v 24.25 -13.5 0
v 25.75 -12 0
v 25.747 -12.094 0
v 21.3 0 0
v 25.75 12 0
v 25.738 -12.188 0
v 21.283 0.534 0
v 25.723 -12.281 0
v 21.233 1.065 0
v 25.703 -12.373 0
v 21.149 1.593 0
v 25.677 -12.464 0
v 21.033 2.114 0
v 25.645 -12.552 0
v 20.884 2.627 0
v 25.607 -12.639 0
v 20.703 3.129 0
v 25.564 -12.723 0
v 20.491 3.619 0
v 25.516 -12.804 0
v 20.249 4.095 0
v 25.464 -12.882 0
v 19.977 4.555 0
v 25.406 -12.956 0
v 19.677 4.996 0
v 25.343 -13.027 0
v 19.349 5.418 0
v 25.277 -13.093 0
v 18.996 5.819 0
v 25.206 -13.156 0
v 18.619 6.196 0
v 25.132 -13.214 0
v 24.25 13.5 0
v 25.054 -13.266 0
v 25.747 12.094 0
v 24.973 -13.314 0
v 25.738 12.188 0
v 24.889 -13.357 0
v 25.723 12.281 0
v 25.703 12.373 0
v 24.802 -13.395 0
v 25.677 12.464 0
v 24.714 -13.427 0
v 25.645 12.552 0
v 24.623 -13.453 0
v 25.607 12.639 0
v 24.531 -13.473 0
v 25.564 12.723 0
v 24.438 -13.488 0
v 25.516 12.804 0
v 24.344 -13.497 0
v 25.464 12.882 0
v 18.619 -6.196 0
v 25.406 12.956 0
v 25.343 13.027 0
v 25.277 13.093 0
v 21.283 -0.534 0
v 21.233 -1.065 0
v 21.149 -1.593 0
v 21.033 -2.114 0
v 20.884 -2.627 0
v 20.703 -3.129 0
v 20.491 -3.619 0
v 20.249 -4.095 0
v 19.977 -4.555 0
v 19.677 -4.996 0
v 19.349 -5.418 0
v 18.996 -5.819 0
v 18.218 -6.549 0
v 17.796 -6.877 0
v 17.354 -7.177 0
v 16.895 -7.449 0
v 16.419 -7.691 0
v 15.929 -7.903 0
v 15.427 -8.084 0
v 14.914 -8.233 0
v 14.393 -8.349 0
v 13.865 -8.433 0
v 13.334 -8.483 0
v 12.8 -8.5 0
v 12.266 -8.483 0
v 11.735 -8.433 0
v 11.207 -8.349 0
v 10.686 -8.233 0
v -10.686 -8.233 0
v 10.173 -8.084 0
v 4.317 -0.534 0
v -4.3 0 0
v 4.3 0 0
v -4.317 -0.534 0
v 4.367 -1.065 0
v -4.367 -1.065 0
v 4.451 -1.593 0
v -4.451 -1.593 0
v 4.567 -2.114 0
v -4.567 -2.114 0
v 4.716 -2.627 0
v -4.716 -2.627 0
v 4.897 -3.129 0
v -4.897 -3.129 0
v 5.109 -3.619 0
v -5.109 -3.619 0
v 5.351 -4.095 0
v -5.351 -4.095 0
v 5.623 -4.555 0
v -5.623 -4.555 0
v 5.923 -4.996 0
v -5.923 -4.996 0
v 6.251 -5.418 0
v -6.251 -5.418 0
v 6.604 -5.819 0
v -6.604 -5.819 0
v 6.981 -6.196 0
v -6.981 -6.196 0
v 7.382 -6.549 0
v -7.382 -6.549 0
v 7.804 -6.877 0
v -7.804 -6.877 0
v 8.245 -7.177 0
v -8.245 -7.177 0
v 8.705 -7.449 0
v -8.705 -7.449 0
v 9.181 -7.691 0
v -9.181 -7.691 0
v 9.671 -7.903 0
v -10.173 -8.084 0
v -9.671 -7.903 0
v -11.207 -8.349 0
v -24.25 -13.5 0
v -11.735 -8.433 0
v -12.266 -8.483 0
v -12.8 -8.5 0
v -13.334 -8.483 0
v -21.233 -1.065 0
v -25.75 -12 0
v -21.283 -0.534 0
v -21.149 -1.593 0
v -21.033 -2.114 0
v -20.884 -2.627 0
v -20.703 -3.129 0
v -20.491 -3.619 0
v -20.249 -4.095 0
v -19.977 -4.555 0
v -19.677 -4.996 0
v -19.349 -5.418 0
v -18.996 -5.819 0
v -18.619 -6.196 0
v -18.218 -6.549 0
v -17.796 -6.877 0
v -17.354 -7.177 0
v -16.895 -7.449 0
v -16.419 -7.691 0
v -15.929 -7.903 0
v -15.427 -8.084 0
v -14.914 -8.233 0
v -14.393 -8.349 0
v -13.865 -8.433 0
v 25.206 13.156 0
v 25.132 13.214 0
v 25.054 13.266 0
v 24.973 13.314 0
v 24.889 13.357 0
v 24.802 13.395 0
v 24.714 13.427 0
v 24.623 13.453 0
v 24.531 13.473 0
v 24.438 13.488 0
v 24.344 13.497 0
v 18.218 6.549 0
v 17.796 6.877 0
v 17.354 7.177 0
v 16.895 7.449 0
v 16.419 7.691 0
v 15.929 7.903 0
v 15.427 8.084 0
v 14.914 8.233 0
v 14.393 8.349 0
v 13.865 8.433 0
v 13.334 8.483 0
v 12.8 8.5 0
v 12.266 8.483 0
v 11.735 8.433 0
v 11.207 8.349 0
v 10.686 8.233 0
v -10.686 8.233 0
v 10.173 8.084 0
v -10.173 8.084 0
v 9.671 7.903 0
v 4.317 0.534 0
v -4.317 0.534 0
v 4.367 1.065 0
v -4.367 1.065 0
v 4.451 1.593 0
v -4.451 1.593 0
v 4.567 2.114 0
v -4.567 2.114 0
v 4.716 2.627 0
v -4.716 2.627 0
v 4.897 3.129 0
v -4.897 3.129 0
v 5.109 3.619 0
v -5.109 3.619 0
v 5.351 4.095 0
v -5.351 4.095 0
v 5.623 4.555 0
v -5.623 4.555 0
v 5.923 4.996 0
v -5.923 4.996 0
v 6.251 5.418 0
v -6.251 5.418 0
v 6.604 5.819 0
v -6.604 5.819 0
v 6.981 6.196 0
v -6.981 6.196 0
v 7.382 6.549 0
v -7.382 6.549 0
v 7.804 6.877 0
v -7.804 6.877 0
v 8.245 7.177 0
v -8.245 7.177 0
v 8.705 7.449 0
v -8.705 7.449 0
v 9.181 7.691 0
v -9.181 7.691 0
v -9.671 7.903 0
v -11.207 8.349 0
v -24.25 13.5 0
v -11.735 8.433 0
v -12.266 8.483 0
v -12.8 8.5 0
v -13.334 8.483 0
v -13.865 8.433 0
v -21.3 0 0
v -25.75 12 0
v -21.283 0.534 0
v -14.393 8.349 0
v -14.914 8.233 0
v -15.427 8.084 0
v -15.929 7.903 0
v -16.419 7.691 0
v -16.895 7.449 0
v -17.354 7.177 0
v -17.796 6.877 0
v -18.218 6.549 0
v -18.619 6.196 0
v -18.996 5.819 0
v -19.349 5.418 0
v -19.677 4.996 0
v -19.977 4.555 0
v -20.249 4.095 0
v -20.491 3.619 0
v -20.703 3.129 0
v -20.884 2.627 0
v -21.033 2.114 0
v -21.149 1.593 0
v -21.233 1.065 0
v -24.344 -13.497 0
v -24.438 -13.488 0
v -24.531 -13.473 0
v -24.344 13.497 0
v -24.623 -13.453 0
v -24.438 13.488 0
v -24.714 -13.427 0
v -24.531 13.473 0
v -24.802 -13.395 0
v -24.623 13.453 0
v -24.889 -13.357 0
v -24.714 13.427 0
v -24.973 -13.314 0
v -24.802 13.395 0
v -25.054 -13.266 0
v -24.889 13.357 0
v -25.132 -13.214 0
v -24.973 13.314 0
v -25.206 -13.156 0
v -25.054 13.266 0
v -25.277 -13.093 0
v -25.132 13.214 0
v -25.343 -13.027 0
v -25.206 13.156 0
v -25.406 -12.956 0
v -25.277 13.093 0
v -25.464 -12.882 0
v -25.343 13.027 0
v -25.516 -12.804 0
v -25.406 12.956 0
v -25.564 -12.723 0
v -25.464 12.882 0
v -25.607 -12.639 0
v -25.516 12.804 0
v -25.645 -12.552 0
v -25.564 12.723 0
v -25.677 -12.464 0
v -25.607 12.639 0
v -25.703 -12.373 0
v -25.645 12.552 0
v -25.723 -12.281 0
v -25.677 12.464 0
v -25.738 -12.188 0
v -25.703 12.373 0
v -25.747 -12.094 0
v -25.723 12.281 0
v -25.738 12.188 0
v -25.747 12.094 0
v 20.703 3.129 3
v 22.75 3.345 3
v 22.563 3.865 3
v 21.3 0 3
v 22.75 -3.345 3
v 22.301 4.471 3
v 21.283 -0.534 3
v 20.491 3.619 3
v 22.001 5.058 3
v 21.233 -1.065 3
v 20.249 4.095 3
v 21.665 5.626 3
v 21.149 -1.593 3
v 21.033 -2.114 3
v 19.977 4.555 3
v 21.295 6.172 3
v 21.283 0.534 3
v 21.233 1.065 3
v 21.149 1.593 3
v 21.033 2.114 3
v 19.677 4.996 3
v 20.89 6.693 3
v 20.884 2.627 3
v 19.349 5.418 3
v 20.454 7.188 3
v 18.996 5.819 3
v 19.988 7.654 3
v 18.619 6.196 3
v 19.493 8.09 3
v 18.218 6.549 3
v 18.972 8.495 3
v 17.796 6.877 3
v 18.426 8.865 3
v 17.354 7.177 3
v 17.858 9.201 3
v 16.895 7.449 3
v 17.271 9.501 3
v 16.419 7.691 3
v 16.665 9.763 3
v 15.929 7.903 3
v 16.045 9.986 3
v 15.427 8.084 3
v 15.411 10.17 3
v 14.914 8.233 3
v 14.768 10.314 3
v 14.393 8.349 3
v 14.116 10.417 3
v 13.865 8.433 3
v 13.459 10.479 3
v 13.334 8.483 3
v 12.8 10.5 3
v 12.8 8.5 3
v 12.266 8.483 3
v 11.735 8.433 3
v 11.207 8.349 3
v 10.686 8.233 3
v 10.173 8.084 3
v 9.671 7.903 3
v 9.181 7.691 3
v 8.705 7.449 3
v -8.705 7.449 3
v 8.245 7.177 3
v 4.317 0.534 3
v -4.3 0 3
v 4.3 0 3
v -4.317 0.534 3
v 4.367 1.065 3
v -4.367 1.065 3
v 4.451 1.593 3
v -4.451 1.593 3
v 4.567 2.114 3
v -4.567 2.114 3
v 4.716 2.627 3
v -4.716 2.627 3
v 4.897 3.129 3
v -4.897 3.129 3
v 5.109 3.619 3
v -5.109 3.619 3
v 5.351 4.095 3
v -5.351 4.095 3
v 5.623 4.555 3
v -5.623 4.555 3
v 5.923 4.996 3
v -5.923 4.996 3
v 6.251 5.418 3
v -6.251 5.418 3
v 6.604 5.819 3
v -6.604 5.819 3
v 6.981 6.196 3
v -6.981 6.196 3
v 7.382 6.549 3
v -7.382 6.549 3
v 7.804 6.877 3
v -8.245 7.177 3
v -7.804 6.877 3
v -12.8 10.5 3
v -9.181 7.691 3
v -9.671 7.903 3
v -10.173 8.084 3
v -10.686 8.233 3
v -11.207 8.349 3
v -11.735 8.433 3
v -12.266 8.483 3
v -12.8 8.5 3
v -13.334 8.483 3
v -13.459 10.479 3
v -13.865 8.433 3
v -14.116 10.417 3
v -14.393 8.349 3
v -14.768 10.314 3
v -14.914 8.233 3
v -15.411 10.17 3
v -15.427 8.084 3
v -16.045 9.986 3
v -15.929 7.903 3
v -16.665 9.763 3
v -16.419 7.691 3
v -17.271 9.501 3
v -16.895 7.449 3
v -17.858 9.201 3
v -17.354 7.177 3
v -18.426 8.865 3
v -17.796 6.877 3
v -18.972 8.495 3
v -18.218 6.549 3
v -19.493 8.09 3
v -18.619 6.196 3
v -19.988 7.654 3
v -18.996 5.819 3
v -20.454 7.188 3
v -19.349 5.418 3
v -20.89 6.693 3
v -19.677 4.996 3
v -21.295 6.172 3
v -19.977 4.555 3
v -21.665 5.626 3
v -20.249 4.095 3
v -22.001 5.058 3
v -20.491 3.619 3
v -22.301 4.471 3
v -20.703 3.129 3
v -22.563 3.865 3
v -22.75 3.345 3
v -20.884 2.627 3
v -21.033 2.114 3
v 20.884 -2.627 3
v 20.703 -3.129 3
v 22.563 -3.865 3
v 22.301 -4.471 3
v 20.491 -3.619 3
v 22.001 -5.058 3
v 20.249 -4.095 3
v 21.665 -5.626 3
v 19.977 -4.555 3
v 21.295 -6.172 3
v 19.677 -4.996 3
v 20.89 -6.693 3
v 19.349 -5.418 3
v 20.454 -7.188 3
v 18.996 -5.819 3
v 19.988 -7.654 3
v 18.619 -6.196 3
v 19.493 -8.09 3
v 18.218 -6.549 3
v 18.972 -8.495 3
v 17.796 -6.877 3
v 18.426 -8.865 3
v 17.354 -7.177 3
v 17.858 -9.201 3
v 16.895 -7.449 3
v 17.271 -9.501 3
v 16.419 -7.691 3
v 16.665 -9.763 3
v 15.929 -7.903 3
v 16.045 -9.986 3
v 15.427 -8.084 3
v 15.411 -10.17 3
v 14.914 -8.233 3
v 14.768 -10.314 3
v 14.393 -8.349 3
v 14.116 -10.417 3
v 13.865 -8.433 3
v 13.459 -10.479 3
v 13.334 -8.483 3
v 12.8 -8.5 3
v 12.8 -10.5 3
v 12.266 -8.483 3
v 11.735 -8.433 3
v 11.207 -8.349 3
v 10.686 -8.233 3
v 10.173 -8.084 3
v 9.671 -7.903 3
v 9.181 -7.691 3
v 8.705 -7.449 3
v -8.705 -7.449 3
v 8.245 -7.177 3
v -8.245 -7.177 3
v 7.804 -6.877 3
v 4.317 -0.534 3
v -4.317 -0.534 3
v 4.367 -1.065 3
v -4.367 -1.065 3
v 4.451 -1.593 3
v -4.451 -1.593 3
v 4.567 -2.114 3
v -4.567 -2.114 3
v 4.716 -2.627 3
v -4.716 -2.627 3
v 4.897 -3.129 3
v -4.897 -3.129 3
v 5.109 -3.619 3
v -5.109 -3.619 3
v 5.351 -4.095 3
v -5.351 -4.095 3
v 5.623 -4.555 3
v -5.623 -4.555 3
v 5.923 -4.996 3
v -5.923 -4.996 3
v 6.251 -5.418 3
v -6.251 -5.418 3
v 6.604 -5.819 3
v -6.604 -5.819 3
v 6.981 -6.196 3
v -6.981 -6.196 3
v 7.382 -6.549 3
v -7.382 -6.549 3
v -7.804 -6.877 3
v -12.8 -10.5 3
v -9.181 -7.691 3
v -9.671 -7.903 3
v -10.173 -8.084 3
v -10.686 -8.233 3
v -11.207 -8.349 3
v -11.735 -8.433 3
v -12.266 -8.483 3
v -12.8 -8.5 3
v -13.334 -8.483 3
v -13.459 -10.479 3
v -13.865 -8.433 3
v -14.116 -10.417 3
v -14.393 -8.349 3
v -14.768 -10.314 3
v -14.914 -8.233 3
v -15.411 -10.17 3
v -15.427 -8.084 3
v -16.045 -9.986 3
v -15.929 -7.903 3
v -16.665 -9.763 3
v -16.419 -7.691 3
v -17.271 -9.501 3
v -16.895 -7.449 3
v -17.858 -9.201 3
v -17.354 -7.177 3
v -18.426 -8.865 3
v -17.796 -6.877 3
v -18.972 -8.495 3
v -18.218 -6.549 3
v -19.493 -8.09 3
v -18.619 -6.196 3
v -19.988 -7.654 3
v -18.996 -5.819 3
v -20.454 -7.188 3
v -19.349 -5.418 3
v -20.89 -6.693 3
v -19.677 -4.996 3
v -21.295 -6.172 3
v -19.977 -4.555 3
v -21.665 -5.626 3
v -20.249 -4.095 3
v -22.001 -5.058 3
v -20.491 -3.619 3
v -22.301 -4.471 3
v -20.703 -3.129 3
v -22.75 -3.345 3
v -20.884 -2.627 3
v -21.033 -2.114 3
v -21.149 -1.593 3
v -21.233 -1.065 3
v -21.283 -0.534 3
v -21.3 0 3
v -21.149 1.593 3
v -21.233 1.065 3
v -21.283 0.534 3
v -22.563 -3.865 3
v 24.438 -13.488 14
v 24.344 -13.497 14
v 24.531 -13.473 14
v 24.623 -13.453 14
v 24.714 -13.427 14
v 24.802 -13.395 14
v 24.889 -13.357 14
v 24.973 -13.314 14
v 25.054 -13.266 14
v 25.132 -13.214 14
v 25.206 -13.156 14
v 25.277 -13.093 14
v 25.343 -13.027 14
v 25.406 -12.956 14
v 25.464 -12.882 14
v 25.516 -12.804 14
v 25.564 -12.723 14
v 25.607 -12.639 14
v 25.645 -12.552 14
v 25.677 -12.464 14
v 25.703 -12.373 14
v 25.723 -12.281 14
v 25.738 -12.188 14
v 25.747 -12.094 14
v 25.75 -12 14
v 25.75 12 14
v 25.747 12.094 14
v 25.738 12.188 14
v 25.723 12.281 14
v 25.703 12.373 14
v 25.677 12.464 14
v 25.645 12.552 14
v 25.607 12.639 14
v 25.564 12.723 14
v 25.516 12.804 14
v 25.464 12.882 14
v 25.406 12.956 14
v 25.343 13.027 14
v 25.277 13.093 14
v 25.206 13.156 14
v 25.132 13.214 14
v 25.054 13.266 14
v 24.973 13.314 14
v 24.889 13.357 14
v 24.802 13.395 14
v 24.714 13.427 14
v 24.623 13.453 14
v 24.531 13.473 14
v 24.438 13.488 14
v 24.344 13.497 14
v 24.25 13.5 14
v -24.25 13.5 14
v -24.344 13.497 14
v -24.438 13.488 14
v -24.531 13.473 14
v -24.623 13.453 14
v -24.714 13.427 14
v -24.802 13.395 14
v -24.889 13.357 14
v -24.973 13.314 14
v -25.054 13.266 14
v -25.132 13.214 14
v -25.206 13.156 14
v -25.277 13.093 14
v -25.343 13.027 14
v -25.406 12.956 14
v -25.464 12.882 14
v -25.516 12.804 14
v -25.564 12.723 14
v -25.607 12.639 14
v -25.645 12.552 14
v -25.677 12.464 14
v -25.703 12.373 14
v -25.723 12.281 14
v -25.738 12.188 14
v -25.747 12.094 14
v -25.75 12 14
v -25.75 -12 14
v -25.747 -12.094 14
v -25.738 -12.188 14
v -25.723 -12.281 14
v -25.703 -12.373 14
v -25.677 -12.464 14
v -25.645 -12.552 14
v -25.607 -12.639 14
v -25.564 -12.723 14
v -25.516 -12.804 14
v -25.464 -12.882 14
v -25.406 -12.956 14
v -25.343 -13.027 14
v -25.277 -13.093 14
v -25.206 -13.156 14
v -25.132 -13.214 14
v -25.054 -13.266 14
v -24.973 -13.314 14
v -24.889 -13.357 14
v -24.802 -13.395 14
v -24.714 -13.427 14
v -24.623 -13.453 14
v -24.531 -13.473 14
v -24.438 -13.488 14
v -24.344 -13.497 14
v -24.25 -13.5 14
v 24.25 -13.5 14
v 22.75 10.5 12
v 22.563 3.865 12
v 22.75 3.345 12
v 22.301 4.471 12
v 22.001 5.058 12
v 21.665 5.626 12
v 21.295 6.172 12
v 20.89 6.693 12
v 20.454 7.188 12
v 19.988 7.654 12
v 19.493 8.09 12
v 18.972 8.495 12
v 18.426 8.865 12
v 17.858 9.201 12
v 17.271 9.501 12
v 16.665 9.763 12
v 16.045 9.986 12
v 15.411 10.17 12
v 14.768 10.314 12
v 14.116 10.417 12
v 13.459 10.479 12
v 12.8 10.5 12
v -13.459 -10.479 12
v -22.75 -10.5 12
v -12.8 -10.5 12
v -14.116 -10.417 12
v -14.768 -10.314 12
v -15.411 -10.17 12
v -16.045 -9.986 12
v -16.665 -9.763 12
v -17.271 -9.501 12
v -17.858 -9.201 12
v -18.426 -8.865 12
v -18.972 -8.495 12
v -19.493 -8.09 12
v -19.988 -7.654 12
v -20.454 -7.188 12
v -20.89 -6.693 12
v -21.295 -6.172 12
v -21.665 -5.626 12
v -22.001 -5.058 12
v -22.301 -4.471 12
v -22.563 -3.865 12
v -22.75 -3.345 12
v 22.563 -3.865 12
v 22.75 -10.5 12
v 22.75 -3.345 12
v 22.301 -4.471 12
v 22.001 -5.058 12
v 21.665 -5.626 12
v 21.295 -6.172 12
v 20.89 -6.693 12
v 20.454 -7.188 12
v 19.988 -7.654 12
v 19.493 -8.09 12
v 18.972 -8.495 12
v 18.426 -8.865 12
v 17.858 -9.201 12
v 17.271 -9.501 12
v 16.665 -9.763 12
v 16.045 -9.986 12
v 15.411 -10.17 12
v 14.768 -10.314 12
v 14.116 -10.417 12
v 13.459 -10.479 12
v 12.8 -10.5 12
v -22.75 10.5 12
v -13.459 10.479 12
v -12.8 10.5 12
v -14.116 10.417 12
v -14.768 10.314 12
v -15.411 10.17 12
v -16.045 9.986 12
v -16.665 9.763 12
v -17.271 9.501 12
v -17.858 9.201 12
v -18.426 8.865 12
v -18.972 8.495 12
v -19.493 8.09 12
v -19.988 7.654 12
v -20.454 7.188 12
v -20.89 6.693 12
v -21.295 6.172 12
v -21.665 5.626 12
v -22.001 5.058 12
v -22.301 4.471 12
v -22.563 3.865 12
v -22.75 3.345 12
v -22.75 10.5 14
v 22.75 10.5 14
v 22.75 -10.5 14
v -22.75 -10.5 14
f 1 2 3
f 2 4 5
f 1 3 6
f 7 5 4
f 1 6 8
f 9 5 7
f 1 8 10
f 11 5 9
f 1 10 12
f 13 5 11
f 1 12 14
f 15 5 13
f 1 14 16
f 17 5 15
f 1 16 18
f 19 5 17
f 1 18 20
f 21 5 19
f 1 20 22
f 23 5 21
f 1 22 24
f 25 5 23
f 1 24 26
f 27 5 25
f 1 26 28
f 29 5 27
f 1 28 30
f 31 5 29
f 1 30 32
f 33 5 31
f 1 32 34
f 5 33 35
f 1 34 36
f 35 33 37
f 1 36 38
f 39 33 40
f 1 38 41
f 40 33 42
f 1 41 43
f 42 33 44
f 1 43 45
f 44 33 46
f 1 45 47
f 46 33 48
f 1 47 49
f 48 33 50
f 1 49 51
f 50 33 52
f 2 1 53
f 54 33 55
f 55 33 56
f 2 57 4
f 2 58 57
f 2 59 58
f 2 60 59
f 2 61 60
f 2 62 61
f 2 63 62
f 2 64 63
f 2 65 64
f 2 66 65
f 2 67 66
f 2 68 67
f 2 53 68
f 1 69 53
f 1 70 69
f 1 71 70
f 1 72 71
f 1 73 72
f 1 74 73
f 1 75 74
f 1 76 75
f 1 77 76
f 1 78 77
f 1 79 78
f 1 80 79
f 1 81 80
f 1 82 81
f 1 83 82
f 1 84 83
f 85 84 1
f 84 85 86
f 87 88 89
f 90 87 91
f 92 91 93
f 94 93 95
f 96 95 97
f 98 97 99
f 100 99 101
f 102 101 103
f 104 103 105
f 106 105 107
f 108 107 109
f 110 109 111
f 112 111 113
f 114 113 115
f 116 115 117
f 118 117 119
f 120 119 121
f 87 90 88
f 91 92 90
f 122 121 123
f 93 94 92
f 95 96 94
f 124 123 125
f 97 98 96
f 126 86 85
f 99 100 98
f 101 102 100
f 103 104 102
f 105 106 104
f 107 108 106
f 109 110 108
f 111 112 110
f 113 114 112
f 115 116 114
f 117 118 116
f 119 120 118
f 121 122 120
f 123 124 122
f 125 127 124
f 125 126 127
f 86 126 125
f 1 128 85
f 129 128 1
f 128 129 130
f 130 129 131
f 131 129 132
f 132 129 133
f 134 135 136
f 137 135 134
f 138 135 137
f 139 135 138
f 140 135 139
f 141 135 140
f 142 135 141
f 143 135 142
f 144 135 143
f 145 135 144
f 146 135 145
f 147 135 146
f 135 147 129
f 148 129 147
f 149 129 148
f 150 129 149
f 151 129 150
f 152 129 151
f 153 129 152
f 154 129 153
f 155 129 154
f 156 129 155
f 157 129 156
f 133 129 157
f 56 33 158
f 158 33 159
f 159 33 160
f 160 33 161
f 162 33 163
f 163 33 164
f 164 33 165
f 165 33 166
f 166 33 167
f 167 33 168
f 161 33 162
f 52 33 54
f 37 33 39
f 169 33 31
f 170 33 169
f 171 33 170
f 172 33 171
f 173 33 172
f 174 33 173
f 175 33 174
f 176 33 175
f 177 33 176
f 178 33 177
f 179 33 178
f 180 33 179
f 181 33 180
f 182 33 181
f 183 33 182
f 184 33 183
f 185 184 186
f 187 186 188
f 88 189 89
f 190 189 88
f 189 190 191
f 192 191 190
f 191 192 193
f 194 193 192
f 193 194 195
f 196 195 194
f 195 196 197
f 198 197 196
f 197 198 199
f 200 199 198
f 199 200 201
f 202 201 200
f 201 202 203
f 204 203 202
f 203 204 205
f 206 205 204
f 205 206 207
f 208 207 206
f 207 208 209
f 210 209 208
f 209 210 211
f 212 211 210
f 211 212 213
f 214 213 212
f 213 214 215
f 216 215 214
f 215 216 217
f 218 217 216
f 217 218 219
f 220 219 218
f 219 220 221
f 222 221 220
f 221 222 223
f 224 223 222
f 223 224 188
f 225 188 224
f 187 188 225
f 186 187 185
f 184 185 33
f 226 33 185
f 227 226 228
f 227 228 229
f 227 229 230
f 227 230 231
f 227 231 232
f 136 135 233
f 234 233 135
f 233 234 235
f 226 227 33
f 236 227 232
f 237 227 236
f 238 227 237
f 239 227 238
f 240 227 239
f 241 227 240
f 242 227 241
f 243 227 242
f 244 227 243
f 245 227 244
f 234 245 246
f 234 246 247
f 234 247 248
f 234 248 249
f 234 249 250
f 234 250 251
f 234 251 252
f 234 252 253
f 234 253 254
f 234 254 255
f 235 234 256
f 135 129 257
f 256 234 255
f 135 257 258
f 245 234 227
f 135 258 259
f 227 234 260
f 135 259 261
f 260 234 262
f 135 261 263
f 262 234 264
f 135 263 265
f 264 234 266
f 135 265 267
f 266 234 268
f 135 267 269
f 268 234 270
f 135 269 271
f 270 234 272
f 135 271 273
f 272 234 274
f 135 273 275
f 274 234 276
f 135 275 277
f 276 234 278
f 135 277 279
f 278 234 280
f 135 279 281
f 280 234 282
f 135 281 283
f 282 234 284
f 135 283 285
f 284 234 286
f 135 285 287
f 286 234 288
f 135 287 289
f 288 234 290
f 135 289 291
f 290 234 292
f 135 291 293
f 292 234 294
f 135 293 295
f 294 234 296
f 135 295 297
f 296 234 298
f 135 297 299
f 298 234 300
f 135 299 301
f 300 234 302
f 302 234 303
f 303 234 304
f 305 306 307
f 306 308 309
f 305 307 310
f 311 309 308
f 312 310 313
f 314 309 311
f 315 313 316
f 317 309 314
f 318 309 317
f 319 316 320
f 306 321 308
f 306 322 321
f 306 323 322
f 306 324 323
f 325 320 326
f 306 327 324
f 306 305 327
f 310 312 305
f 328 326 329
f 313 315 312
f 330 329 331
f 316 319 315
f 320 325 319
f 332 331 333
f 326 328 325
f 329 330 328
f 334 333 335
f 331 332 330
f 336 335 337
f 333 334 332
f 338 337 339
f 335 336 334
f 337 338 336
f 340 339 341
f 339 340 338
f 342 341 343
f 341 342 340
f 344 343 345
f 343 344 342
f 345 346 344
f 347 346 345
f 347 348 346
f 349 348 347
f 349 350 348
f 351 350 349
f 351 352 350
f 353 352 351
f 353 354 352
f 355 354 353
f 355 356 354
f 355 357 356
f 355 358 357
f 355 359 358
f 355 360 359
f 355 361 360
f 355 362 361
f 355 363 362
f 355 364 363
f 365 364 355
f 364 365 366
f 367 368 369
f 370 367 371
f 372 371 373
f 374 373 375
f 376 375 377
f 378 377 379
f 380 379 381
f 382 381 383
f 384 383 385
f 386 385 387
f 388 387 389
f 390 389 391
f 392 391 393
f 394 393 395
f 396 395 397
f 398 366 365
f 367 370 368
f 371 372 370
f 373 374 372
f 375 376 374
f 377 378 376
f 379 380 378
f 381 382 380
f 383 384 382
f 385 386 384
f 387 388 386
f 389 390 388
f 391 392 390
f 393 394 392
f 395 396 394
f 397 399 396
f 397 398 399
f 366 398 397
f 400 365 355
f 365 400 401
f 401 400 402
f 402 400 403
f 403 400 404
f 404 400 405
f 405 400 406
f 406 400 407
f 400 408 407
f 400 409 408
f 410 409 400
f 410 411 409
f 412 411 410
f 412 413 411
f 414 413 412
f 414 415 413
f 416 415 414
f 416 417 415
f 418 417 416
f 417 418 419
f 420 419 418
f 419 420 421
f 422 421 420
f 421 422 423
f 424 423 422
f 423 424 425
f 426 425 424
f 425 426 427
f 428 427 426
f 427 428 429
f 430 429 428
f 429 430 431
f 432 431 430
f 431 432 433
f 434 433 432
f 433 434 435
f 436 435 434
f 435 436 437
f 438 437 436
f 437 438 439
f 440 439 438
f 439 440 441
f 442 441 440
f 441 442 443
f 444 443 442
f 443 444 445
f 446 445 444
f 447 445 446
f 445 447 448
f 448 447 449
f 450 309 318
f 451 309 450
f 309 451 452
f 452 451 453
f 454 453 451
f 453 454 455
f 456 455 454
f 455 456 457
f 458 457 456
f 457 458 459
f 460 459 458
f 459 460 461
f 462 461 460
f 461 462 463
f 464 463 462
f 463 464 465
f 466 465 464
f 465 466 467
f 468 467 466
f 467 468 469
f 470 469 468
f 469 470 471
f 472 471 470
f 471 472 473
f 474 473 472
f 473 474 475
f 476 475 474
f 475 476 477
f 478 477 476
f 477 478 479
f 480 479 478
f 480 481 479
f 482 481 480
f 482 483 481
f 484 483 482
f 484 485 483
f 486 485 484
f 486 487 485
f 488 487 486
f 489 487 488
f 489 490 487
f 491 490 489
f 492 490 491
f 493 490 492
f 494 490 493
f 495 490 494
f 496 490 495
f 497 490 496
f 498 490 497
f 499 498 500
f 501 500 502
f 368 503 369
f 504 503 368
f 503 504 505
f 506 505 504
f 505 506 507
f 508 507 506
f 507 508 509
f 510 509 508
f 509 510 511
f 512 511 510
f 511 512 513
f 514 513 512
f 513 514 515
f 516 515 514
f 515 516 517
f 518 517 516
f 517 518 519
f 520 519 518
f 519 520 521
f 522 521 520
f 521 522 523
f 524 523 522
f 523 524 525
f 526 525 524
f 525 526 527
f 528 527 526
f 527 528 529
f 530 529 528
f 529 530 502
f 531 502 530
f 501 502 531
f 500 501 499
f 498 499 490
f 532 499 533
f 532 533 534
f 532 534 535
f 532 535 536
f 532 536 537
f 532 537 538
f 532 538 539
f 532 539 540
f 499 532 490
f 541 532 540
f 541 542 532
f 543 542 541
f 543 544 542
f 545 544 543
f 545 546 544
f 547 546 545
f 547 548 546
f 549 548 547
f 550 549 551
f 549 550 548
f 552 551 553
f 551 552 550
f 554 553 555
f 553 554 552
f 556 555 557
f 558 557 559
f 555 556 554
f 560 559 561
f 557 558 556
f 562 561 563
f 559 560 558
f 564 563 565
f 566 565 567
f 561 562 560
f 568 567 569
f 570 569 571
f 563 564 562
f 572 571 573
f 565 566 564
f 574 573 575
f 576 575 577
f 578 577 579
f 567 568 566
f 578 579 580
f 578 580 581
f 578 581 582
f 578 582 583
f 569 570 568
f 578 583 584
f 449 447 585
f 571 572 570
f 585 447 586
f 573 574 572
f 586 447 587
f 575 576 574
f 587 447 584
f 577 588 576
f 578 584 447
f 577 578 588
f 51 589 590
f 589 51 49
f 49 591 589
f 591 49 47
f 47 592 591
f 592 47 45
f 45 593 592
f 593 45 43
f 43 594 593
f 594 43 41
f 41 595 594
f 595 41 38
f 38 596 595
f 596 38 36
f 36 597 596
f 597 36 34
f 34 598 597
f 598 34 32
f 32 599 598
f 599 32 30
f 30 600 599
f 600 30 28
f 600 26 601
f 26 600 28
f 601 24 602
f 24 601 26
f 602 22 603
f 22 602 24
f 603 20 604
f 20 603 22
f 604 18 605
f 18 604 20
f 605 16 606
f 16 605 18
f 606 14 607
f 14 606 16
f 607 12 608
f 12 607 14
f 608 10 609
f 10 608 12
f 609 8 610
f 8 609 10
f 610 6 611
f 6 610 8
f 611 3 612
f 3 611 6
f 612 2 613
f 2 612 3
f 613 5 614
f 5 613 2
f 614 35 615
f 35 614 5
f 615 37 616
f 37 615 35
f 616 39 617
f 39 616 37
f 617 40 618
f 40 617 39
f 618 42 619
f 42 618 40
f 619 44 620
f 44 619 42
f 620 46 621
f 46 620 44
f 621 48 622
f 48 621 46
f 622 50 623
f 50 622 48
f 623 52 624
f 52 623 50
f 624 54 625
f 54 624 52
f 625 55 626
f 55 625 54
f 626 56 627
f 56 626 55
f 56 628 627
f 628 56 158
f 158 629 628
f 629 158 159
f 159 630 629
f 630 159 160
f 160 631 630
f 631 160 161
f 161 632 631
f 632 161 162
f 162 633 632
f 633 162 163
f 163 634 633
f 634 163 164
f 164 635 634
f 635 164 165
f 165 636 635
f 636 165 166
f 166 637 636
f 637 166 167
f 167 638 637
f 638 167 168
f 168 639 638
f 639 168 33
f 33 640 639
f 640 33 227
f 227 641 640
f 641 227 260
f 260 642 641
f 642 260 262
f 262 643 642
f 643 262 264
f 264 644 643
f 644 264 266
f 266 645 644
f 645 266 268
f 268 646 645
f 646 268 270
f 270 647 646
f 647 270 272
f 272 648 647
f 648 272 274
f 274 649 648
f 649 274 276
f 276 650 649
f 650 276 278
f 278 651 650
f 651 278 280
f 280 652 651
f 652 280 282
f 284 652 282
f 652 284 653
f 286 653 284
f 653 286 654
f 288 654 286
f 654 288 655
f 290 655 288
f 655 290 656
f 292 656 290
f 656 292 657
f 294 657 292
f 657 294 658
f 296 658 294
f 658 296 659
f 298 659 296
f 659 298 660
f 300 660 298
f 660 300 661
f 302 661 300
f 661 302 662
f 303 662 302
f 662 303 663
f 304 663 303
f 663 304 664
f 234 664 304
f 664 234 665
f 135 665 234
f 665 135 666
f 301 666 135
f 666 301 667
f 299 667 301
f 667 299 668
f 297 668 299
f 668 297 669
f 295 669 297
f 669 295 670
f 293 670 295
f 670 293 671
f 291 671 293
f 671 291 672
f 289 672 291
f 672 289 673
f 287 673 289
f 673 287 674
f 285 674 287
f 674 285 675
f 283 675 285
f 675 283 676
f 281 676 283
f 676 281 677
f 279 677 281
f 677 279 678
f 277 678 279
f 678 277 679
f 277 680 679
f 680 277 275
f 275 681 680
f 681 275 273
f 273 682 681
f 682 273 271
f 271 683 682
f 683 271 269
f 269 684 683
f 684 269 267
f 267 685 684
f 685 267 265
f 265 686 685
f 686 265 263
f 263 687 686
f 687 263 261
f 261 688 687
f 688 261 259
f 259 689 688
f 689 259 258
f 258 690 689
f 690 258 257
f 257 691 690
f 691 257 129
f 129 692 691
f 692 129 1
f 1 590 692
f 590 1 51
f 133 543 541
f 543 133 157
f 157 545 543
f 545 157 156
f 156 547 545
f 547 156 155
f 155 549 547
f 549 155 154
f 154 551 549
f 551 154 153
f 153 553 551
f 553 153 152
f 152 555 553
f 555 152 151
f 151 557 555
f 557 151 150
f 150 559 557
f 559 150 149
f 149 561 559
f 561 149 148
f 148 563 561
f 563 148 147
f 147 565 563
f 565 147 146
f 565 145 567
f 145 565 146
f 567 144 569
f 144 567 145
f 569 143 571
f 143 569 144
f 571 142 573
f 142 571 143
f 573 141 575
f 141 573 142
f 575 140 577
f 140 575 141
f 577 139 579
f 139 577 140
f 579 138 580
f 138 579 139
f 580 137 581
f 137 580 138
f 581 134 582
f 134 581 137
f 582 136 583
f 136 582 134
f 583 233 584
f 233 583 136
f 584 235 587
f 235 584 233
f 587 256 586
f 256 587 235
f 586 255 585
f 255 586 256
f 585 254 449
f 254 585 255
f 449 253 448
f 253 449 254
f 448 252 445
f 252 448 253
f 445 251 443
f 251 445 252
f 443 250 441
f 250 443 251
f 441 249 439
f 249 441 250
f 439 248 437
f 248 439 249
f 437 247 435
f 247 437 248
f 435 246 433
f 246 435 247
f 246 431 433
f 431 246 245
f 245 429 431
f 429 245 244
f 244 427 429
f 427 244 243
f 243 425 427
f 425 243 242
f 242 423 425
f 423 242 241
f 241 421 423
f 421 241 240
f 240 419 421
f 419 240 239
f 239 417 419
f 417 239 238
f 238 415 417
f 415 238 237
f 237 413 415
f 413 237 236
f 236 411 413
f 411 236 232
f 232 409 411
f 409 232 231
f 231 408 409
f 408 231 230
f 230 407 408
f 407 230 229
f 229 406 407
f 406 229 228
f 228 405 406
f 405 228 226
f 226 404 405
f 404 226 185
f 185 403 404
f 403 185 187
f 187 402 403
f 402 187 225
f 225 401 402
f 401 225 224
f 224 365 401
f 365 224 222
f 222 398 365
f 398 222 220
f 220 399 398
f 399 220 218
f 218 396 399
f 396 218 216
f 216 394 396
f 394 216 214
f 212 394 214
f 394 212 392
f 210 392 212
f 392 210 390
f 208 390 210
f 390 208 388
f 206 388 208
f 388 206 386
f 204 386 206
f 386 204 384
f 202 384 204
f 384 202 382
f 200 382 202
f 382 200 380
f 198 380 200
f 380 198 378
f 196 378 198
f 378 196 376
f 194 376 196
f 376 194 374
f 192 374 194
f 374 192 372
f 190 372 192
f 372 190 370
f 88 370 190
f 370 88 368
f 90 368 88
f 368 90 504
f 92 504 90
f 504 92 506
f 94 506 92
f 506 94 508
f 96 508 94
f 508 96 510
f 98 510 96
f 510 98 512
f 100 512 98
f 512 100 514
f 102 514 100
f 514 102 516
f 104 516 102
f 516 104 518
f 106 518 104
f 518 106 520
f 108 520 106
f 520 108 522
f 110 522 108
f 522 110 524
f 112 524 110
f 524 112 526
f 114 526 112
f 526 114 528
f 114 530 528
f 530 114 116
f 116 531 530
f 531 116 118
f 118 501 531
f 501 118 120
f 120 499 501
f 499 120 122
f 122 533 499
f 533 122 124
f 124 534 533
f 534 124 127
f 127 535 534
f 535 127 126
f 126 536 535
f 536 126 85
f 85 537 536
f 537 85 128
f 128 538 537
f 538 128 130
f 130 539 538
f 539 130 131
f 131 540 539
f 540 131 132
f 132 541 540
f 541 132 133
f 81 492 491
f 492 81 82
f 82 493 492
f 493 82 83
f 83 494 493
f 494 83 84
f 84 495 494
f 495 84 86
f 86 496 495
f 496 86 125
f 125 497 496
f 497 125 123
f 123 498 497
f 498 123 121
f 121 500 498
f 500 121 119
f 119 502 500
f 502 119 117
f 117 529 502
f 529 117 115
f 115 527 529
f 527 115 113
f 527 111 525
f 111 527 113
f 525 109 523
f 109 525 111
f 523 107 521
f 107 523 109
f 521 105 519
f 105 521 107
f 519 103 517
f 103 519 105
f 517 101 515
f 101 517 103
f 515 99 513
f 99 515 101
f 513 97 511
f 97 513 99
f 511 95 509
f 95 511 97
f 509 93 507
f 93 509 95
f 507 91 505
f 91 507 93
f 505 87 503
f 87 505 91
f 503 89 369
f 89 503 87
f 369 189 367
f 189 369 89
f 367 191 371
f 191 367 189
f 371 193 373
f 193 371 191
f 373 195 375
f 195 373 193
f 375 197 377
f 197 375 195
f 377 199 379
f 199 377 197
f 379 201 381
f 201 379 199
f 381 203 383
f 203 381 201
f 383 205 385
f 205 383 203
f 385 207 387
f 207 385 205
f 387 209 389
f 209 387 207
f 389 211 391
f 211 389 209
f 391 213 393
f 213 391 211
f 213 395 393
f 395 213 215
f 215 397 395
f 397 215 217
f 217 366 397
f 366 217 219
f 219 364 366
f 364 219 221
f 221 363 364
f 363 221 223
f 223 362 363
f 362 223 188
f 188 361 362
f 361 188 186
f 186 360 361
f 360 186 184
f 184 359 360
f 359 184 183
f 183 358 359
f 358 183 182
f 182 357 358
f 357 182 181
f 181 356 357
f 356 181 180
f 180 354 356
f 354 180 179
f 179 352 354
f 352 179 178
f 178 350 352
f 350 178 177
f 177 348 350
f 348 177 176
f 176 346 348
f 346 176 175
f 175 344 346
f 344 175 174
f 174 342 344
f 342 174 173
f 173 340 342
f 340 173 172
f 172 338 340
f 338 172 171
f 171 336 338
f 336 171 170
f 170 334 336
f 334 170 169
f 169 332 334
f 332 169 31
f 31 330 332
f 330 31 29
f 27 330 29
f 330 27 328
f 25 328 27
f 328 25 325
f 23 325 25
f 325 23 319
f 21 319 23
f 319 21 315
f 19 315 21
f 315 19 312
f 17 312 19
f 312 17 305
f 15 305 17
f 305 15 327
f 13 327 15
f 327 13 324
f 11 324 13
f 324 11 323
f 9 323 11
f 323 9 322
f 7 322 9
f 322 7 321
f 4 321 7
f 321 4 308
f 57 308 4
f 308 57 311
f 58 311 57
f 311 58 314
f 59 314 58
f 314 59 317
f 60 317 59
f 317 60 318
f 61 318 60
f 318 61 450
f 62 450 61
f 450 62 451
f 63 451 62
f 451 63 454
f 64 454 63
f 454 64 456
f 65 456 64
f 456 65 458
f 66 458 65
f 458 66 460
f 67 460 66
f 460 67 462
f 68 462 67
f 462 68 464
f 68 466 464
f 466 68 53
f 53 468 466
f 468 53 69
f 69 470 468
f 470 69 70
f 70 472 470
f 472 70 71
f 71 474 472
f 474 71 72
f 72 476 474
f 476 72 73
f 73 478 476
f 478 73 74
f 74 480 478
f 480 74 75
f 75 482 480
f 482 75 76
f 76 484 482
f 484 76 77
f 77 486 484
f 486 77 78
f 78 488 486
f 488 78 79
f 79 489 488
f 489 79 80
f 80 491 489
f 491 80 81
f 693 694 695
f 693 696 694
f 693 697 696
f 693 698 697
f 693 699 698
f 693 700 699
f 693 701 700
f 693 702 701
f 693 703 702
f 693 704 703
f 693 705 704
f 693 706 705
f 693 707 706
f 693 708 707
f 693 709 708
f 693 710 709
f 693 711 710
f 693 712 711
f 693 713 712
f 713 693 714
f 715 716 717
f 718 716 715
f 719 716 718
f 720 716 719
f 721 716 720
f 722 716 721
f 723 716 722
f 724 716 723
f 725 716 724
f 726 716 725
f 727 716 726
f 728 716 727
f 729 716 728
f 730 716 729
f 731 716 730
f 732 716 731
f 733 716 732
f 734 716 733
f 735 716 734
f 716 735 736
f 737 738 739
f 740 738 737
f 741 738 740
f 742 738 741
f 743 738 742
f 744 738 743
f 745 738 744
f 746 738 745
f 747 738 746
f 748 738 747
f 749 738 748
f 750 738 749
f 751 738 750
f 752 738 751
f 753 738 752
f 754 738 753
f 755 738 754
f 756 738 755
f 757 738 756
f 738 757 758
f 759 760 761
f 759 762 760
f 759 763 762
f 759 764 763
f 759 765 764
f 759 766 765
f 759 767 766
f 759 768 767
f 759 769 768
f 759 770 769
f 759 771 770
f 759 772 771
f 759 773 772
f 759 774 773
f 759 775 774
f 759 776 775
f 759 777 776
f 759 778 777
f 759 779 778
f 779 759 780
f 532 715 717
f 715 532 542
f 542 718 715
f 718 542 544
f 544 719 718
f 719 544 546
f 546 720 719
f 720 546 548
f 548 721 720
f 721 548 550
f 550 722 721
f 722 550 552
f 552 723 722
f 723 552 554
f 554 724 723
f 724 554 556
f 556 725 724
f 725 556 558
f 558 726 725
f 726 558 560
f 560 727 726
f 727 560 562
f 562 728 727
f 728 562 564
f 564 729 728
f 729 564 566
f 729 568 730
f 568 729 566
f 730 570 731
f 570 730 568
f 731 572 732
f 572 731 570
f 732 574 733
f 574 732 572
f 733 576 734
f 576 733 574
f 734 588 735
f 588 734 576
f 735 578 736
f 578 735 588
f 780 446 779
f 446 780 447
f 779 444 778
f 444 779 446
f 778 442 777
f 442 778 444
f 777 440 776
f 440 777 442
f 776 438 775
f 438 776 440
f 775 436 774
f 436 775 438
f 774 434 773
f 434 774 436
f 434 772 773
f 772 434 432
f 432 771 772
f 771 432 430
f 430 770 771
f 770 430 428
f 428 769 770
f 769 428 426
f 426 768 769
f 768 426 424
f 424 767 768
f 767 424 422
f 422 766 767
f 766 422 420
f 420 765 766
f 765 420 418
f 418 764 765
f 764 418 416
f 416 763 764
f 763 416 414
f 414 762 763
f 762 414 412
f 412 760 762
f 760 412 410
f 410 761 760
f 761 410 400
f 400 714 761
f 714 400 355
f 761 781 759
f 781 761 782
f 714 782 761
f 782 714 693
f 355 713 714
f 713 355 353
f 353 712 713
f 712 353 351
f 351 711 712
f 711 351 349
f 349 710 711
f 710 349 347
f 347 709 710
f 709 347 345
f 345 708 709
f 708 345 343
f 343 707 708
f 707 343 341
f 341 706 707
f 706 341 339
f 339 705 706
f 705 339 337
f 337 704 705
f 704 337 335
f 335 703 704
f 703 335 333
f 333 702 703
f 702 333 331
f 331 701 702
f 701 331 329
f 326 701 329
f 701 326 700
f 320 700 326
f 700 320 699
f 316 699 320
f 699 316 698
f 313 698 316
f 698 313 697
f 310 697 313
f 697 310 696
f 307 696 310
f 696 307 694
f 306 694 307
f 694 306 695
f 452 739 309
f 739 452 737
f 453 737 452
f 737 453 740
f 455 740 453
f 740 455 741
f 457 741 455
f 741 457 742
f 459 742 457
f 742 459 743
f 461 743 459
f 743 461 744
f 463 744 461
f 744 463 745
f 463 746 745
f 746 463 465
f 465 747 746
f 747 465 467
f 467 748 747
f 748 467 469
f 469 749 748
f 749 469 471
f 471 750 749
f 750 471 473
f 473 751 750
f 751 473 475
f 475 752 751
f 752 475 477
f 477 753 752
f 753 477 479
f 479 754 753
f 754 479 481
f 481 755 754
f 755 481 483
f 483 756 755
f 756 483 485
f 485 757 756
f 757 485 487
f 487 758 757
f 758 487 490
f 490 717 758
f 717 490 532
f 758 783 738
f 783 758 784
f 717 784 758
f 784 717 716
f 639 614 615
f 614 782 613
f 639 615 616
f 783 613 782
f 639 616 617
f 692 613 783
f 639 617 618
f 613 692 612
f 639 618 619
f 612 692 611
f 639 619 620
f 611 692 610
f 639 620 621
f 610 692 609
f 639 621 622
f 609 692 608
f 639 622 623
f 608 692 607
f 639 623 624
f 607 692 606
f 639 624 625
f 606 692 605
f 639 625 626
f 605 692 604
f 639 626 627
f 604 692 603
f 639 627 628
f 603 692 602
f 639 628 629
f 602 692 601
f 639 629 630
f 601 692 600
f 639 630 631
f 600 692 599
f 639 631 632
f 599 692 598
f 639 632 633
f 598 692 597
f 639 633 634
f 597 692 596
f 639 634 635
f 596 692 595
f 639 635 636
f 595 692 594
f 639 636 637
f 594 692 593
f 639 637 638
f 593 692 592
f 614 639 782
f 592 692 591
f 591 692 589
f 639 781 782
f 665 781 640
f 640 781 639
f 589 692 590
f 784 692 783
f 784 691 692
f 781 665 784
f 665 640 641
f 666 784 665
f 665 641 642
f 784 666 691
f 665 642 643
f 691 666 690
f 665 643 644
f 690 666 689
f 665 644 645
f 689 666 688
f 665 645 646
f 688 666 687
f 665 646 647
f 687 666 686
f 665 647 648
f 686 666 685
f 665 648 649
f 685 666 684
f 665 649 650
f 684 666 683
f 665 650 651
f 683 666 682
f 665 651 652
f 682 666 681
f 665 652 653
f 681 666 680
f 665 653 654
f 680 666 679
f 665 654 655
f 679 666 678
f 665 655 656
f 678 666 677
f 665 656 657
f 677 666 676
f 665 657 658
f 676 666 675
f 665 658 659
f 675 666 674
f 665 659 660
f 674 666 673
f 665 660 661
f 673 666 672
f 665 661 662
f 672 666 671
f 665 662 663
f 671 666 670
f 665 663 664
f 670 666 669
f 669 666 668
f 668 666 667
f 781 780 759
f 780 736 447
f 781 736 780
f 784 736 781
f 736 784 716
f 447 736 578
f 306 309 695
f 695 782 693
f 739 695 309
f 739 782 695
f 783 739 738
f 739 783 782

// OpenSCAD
$fn=100;

module crystal_model() {
    translate([0,-7,0]) hull() {
        translate([-3.25,0,0]) linear_extrude(height=5) circle(d=3.5);
        translate([ 3.25,0,0]) linear_extrude(height=5) circle(d=3.5);
    }
}

module connector_model() {
    translate([0,10,-4]) linear_extrude(height=4) square([9,9], center=true);
}

module board_model() {
    linear_extrude(height=1) square([46,21],center=true);
}

module sensor_model() {
    translate([-12.8,0,0]) linear_extrude(height=12) circle(d=17);
    translate([ 12.8,0,0]) linear_extrude(height=12) circle(d=17);
    board_model();
    crystal_model();
    connector_model();
}


module case() {
    translate([0,0,-13]) linear_extrude(height=24) square([54,28], center=true);
}
/*
difference() {
    case();
    hull() sensor_model();
}
*/

wall_thickness=3;
board_width=21;
board_length=45.5;
transducer_length=12;
transducer_diameter=17;
case_width=board_width+(wall_thickness*2);
case_length=board_length+(wall_thickness*2);

module port() {
    circle(d=transducer_diameter);
}

module perimeter() {
    minkowski() {
        square([case_length-wall_thickness,case_width-wall_thickness], center=true);
        circle(d=wall_thickness);
    }
}

module face() {
    difference() {
        perimeter();
        translate([-12.8,0,0]) port();
        translate([ 12.8,0,0]) port();
    }
}

module lower_walls() {
    difference() {
        perimeter();
        hull() {
            translate([-12.8,0,0]) circle(d=21);
            translate([ 12.8,0,0]) circle(d=21);
        }        
    }
}

module upper_walls() {
    difference() {
        perimeter();
        square([board_length,board_width], center=true);
    }
}

module main_unit() {
    linear_extrude(height=wall_thickness) face();
    linear_extrude(height=transducer_length) lower_walls();
    linear_extrude(height=14) upper_walls();
}

module lid() {
    linear_extrude(height=wall_thickness) perimeter();
    difference() {
        linear_extrude(height=6+wall_thickness) lower_walls();
        linear_extrude(height=6+wall_thickness) translate([0,-8.5,0]) square([13,10], center=true);
    }
}

main_unit();
//lid();
